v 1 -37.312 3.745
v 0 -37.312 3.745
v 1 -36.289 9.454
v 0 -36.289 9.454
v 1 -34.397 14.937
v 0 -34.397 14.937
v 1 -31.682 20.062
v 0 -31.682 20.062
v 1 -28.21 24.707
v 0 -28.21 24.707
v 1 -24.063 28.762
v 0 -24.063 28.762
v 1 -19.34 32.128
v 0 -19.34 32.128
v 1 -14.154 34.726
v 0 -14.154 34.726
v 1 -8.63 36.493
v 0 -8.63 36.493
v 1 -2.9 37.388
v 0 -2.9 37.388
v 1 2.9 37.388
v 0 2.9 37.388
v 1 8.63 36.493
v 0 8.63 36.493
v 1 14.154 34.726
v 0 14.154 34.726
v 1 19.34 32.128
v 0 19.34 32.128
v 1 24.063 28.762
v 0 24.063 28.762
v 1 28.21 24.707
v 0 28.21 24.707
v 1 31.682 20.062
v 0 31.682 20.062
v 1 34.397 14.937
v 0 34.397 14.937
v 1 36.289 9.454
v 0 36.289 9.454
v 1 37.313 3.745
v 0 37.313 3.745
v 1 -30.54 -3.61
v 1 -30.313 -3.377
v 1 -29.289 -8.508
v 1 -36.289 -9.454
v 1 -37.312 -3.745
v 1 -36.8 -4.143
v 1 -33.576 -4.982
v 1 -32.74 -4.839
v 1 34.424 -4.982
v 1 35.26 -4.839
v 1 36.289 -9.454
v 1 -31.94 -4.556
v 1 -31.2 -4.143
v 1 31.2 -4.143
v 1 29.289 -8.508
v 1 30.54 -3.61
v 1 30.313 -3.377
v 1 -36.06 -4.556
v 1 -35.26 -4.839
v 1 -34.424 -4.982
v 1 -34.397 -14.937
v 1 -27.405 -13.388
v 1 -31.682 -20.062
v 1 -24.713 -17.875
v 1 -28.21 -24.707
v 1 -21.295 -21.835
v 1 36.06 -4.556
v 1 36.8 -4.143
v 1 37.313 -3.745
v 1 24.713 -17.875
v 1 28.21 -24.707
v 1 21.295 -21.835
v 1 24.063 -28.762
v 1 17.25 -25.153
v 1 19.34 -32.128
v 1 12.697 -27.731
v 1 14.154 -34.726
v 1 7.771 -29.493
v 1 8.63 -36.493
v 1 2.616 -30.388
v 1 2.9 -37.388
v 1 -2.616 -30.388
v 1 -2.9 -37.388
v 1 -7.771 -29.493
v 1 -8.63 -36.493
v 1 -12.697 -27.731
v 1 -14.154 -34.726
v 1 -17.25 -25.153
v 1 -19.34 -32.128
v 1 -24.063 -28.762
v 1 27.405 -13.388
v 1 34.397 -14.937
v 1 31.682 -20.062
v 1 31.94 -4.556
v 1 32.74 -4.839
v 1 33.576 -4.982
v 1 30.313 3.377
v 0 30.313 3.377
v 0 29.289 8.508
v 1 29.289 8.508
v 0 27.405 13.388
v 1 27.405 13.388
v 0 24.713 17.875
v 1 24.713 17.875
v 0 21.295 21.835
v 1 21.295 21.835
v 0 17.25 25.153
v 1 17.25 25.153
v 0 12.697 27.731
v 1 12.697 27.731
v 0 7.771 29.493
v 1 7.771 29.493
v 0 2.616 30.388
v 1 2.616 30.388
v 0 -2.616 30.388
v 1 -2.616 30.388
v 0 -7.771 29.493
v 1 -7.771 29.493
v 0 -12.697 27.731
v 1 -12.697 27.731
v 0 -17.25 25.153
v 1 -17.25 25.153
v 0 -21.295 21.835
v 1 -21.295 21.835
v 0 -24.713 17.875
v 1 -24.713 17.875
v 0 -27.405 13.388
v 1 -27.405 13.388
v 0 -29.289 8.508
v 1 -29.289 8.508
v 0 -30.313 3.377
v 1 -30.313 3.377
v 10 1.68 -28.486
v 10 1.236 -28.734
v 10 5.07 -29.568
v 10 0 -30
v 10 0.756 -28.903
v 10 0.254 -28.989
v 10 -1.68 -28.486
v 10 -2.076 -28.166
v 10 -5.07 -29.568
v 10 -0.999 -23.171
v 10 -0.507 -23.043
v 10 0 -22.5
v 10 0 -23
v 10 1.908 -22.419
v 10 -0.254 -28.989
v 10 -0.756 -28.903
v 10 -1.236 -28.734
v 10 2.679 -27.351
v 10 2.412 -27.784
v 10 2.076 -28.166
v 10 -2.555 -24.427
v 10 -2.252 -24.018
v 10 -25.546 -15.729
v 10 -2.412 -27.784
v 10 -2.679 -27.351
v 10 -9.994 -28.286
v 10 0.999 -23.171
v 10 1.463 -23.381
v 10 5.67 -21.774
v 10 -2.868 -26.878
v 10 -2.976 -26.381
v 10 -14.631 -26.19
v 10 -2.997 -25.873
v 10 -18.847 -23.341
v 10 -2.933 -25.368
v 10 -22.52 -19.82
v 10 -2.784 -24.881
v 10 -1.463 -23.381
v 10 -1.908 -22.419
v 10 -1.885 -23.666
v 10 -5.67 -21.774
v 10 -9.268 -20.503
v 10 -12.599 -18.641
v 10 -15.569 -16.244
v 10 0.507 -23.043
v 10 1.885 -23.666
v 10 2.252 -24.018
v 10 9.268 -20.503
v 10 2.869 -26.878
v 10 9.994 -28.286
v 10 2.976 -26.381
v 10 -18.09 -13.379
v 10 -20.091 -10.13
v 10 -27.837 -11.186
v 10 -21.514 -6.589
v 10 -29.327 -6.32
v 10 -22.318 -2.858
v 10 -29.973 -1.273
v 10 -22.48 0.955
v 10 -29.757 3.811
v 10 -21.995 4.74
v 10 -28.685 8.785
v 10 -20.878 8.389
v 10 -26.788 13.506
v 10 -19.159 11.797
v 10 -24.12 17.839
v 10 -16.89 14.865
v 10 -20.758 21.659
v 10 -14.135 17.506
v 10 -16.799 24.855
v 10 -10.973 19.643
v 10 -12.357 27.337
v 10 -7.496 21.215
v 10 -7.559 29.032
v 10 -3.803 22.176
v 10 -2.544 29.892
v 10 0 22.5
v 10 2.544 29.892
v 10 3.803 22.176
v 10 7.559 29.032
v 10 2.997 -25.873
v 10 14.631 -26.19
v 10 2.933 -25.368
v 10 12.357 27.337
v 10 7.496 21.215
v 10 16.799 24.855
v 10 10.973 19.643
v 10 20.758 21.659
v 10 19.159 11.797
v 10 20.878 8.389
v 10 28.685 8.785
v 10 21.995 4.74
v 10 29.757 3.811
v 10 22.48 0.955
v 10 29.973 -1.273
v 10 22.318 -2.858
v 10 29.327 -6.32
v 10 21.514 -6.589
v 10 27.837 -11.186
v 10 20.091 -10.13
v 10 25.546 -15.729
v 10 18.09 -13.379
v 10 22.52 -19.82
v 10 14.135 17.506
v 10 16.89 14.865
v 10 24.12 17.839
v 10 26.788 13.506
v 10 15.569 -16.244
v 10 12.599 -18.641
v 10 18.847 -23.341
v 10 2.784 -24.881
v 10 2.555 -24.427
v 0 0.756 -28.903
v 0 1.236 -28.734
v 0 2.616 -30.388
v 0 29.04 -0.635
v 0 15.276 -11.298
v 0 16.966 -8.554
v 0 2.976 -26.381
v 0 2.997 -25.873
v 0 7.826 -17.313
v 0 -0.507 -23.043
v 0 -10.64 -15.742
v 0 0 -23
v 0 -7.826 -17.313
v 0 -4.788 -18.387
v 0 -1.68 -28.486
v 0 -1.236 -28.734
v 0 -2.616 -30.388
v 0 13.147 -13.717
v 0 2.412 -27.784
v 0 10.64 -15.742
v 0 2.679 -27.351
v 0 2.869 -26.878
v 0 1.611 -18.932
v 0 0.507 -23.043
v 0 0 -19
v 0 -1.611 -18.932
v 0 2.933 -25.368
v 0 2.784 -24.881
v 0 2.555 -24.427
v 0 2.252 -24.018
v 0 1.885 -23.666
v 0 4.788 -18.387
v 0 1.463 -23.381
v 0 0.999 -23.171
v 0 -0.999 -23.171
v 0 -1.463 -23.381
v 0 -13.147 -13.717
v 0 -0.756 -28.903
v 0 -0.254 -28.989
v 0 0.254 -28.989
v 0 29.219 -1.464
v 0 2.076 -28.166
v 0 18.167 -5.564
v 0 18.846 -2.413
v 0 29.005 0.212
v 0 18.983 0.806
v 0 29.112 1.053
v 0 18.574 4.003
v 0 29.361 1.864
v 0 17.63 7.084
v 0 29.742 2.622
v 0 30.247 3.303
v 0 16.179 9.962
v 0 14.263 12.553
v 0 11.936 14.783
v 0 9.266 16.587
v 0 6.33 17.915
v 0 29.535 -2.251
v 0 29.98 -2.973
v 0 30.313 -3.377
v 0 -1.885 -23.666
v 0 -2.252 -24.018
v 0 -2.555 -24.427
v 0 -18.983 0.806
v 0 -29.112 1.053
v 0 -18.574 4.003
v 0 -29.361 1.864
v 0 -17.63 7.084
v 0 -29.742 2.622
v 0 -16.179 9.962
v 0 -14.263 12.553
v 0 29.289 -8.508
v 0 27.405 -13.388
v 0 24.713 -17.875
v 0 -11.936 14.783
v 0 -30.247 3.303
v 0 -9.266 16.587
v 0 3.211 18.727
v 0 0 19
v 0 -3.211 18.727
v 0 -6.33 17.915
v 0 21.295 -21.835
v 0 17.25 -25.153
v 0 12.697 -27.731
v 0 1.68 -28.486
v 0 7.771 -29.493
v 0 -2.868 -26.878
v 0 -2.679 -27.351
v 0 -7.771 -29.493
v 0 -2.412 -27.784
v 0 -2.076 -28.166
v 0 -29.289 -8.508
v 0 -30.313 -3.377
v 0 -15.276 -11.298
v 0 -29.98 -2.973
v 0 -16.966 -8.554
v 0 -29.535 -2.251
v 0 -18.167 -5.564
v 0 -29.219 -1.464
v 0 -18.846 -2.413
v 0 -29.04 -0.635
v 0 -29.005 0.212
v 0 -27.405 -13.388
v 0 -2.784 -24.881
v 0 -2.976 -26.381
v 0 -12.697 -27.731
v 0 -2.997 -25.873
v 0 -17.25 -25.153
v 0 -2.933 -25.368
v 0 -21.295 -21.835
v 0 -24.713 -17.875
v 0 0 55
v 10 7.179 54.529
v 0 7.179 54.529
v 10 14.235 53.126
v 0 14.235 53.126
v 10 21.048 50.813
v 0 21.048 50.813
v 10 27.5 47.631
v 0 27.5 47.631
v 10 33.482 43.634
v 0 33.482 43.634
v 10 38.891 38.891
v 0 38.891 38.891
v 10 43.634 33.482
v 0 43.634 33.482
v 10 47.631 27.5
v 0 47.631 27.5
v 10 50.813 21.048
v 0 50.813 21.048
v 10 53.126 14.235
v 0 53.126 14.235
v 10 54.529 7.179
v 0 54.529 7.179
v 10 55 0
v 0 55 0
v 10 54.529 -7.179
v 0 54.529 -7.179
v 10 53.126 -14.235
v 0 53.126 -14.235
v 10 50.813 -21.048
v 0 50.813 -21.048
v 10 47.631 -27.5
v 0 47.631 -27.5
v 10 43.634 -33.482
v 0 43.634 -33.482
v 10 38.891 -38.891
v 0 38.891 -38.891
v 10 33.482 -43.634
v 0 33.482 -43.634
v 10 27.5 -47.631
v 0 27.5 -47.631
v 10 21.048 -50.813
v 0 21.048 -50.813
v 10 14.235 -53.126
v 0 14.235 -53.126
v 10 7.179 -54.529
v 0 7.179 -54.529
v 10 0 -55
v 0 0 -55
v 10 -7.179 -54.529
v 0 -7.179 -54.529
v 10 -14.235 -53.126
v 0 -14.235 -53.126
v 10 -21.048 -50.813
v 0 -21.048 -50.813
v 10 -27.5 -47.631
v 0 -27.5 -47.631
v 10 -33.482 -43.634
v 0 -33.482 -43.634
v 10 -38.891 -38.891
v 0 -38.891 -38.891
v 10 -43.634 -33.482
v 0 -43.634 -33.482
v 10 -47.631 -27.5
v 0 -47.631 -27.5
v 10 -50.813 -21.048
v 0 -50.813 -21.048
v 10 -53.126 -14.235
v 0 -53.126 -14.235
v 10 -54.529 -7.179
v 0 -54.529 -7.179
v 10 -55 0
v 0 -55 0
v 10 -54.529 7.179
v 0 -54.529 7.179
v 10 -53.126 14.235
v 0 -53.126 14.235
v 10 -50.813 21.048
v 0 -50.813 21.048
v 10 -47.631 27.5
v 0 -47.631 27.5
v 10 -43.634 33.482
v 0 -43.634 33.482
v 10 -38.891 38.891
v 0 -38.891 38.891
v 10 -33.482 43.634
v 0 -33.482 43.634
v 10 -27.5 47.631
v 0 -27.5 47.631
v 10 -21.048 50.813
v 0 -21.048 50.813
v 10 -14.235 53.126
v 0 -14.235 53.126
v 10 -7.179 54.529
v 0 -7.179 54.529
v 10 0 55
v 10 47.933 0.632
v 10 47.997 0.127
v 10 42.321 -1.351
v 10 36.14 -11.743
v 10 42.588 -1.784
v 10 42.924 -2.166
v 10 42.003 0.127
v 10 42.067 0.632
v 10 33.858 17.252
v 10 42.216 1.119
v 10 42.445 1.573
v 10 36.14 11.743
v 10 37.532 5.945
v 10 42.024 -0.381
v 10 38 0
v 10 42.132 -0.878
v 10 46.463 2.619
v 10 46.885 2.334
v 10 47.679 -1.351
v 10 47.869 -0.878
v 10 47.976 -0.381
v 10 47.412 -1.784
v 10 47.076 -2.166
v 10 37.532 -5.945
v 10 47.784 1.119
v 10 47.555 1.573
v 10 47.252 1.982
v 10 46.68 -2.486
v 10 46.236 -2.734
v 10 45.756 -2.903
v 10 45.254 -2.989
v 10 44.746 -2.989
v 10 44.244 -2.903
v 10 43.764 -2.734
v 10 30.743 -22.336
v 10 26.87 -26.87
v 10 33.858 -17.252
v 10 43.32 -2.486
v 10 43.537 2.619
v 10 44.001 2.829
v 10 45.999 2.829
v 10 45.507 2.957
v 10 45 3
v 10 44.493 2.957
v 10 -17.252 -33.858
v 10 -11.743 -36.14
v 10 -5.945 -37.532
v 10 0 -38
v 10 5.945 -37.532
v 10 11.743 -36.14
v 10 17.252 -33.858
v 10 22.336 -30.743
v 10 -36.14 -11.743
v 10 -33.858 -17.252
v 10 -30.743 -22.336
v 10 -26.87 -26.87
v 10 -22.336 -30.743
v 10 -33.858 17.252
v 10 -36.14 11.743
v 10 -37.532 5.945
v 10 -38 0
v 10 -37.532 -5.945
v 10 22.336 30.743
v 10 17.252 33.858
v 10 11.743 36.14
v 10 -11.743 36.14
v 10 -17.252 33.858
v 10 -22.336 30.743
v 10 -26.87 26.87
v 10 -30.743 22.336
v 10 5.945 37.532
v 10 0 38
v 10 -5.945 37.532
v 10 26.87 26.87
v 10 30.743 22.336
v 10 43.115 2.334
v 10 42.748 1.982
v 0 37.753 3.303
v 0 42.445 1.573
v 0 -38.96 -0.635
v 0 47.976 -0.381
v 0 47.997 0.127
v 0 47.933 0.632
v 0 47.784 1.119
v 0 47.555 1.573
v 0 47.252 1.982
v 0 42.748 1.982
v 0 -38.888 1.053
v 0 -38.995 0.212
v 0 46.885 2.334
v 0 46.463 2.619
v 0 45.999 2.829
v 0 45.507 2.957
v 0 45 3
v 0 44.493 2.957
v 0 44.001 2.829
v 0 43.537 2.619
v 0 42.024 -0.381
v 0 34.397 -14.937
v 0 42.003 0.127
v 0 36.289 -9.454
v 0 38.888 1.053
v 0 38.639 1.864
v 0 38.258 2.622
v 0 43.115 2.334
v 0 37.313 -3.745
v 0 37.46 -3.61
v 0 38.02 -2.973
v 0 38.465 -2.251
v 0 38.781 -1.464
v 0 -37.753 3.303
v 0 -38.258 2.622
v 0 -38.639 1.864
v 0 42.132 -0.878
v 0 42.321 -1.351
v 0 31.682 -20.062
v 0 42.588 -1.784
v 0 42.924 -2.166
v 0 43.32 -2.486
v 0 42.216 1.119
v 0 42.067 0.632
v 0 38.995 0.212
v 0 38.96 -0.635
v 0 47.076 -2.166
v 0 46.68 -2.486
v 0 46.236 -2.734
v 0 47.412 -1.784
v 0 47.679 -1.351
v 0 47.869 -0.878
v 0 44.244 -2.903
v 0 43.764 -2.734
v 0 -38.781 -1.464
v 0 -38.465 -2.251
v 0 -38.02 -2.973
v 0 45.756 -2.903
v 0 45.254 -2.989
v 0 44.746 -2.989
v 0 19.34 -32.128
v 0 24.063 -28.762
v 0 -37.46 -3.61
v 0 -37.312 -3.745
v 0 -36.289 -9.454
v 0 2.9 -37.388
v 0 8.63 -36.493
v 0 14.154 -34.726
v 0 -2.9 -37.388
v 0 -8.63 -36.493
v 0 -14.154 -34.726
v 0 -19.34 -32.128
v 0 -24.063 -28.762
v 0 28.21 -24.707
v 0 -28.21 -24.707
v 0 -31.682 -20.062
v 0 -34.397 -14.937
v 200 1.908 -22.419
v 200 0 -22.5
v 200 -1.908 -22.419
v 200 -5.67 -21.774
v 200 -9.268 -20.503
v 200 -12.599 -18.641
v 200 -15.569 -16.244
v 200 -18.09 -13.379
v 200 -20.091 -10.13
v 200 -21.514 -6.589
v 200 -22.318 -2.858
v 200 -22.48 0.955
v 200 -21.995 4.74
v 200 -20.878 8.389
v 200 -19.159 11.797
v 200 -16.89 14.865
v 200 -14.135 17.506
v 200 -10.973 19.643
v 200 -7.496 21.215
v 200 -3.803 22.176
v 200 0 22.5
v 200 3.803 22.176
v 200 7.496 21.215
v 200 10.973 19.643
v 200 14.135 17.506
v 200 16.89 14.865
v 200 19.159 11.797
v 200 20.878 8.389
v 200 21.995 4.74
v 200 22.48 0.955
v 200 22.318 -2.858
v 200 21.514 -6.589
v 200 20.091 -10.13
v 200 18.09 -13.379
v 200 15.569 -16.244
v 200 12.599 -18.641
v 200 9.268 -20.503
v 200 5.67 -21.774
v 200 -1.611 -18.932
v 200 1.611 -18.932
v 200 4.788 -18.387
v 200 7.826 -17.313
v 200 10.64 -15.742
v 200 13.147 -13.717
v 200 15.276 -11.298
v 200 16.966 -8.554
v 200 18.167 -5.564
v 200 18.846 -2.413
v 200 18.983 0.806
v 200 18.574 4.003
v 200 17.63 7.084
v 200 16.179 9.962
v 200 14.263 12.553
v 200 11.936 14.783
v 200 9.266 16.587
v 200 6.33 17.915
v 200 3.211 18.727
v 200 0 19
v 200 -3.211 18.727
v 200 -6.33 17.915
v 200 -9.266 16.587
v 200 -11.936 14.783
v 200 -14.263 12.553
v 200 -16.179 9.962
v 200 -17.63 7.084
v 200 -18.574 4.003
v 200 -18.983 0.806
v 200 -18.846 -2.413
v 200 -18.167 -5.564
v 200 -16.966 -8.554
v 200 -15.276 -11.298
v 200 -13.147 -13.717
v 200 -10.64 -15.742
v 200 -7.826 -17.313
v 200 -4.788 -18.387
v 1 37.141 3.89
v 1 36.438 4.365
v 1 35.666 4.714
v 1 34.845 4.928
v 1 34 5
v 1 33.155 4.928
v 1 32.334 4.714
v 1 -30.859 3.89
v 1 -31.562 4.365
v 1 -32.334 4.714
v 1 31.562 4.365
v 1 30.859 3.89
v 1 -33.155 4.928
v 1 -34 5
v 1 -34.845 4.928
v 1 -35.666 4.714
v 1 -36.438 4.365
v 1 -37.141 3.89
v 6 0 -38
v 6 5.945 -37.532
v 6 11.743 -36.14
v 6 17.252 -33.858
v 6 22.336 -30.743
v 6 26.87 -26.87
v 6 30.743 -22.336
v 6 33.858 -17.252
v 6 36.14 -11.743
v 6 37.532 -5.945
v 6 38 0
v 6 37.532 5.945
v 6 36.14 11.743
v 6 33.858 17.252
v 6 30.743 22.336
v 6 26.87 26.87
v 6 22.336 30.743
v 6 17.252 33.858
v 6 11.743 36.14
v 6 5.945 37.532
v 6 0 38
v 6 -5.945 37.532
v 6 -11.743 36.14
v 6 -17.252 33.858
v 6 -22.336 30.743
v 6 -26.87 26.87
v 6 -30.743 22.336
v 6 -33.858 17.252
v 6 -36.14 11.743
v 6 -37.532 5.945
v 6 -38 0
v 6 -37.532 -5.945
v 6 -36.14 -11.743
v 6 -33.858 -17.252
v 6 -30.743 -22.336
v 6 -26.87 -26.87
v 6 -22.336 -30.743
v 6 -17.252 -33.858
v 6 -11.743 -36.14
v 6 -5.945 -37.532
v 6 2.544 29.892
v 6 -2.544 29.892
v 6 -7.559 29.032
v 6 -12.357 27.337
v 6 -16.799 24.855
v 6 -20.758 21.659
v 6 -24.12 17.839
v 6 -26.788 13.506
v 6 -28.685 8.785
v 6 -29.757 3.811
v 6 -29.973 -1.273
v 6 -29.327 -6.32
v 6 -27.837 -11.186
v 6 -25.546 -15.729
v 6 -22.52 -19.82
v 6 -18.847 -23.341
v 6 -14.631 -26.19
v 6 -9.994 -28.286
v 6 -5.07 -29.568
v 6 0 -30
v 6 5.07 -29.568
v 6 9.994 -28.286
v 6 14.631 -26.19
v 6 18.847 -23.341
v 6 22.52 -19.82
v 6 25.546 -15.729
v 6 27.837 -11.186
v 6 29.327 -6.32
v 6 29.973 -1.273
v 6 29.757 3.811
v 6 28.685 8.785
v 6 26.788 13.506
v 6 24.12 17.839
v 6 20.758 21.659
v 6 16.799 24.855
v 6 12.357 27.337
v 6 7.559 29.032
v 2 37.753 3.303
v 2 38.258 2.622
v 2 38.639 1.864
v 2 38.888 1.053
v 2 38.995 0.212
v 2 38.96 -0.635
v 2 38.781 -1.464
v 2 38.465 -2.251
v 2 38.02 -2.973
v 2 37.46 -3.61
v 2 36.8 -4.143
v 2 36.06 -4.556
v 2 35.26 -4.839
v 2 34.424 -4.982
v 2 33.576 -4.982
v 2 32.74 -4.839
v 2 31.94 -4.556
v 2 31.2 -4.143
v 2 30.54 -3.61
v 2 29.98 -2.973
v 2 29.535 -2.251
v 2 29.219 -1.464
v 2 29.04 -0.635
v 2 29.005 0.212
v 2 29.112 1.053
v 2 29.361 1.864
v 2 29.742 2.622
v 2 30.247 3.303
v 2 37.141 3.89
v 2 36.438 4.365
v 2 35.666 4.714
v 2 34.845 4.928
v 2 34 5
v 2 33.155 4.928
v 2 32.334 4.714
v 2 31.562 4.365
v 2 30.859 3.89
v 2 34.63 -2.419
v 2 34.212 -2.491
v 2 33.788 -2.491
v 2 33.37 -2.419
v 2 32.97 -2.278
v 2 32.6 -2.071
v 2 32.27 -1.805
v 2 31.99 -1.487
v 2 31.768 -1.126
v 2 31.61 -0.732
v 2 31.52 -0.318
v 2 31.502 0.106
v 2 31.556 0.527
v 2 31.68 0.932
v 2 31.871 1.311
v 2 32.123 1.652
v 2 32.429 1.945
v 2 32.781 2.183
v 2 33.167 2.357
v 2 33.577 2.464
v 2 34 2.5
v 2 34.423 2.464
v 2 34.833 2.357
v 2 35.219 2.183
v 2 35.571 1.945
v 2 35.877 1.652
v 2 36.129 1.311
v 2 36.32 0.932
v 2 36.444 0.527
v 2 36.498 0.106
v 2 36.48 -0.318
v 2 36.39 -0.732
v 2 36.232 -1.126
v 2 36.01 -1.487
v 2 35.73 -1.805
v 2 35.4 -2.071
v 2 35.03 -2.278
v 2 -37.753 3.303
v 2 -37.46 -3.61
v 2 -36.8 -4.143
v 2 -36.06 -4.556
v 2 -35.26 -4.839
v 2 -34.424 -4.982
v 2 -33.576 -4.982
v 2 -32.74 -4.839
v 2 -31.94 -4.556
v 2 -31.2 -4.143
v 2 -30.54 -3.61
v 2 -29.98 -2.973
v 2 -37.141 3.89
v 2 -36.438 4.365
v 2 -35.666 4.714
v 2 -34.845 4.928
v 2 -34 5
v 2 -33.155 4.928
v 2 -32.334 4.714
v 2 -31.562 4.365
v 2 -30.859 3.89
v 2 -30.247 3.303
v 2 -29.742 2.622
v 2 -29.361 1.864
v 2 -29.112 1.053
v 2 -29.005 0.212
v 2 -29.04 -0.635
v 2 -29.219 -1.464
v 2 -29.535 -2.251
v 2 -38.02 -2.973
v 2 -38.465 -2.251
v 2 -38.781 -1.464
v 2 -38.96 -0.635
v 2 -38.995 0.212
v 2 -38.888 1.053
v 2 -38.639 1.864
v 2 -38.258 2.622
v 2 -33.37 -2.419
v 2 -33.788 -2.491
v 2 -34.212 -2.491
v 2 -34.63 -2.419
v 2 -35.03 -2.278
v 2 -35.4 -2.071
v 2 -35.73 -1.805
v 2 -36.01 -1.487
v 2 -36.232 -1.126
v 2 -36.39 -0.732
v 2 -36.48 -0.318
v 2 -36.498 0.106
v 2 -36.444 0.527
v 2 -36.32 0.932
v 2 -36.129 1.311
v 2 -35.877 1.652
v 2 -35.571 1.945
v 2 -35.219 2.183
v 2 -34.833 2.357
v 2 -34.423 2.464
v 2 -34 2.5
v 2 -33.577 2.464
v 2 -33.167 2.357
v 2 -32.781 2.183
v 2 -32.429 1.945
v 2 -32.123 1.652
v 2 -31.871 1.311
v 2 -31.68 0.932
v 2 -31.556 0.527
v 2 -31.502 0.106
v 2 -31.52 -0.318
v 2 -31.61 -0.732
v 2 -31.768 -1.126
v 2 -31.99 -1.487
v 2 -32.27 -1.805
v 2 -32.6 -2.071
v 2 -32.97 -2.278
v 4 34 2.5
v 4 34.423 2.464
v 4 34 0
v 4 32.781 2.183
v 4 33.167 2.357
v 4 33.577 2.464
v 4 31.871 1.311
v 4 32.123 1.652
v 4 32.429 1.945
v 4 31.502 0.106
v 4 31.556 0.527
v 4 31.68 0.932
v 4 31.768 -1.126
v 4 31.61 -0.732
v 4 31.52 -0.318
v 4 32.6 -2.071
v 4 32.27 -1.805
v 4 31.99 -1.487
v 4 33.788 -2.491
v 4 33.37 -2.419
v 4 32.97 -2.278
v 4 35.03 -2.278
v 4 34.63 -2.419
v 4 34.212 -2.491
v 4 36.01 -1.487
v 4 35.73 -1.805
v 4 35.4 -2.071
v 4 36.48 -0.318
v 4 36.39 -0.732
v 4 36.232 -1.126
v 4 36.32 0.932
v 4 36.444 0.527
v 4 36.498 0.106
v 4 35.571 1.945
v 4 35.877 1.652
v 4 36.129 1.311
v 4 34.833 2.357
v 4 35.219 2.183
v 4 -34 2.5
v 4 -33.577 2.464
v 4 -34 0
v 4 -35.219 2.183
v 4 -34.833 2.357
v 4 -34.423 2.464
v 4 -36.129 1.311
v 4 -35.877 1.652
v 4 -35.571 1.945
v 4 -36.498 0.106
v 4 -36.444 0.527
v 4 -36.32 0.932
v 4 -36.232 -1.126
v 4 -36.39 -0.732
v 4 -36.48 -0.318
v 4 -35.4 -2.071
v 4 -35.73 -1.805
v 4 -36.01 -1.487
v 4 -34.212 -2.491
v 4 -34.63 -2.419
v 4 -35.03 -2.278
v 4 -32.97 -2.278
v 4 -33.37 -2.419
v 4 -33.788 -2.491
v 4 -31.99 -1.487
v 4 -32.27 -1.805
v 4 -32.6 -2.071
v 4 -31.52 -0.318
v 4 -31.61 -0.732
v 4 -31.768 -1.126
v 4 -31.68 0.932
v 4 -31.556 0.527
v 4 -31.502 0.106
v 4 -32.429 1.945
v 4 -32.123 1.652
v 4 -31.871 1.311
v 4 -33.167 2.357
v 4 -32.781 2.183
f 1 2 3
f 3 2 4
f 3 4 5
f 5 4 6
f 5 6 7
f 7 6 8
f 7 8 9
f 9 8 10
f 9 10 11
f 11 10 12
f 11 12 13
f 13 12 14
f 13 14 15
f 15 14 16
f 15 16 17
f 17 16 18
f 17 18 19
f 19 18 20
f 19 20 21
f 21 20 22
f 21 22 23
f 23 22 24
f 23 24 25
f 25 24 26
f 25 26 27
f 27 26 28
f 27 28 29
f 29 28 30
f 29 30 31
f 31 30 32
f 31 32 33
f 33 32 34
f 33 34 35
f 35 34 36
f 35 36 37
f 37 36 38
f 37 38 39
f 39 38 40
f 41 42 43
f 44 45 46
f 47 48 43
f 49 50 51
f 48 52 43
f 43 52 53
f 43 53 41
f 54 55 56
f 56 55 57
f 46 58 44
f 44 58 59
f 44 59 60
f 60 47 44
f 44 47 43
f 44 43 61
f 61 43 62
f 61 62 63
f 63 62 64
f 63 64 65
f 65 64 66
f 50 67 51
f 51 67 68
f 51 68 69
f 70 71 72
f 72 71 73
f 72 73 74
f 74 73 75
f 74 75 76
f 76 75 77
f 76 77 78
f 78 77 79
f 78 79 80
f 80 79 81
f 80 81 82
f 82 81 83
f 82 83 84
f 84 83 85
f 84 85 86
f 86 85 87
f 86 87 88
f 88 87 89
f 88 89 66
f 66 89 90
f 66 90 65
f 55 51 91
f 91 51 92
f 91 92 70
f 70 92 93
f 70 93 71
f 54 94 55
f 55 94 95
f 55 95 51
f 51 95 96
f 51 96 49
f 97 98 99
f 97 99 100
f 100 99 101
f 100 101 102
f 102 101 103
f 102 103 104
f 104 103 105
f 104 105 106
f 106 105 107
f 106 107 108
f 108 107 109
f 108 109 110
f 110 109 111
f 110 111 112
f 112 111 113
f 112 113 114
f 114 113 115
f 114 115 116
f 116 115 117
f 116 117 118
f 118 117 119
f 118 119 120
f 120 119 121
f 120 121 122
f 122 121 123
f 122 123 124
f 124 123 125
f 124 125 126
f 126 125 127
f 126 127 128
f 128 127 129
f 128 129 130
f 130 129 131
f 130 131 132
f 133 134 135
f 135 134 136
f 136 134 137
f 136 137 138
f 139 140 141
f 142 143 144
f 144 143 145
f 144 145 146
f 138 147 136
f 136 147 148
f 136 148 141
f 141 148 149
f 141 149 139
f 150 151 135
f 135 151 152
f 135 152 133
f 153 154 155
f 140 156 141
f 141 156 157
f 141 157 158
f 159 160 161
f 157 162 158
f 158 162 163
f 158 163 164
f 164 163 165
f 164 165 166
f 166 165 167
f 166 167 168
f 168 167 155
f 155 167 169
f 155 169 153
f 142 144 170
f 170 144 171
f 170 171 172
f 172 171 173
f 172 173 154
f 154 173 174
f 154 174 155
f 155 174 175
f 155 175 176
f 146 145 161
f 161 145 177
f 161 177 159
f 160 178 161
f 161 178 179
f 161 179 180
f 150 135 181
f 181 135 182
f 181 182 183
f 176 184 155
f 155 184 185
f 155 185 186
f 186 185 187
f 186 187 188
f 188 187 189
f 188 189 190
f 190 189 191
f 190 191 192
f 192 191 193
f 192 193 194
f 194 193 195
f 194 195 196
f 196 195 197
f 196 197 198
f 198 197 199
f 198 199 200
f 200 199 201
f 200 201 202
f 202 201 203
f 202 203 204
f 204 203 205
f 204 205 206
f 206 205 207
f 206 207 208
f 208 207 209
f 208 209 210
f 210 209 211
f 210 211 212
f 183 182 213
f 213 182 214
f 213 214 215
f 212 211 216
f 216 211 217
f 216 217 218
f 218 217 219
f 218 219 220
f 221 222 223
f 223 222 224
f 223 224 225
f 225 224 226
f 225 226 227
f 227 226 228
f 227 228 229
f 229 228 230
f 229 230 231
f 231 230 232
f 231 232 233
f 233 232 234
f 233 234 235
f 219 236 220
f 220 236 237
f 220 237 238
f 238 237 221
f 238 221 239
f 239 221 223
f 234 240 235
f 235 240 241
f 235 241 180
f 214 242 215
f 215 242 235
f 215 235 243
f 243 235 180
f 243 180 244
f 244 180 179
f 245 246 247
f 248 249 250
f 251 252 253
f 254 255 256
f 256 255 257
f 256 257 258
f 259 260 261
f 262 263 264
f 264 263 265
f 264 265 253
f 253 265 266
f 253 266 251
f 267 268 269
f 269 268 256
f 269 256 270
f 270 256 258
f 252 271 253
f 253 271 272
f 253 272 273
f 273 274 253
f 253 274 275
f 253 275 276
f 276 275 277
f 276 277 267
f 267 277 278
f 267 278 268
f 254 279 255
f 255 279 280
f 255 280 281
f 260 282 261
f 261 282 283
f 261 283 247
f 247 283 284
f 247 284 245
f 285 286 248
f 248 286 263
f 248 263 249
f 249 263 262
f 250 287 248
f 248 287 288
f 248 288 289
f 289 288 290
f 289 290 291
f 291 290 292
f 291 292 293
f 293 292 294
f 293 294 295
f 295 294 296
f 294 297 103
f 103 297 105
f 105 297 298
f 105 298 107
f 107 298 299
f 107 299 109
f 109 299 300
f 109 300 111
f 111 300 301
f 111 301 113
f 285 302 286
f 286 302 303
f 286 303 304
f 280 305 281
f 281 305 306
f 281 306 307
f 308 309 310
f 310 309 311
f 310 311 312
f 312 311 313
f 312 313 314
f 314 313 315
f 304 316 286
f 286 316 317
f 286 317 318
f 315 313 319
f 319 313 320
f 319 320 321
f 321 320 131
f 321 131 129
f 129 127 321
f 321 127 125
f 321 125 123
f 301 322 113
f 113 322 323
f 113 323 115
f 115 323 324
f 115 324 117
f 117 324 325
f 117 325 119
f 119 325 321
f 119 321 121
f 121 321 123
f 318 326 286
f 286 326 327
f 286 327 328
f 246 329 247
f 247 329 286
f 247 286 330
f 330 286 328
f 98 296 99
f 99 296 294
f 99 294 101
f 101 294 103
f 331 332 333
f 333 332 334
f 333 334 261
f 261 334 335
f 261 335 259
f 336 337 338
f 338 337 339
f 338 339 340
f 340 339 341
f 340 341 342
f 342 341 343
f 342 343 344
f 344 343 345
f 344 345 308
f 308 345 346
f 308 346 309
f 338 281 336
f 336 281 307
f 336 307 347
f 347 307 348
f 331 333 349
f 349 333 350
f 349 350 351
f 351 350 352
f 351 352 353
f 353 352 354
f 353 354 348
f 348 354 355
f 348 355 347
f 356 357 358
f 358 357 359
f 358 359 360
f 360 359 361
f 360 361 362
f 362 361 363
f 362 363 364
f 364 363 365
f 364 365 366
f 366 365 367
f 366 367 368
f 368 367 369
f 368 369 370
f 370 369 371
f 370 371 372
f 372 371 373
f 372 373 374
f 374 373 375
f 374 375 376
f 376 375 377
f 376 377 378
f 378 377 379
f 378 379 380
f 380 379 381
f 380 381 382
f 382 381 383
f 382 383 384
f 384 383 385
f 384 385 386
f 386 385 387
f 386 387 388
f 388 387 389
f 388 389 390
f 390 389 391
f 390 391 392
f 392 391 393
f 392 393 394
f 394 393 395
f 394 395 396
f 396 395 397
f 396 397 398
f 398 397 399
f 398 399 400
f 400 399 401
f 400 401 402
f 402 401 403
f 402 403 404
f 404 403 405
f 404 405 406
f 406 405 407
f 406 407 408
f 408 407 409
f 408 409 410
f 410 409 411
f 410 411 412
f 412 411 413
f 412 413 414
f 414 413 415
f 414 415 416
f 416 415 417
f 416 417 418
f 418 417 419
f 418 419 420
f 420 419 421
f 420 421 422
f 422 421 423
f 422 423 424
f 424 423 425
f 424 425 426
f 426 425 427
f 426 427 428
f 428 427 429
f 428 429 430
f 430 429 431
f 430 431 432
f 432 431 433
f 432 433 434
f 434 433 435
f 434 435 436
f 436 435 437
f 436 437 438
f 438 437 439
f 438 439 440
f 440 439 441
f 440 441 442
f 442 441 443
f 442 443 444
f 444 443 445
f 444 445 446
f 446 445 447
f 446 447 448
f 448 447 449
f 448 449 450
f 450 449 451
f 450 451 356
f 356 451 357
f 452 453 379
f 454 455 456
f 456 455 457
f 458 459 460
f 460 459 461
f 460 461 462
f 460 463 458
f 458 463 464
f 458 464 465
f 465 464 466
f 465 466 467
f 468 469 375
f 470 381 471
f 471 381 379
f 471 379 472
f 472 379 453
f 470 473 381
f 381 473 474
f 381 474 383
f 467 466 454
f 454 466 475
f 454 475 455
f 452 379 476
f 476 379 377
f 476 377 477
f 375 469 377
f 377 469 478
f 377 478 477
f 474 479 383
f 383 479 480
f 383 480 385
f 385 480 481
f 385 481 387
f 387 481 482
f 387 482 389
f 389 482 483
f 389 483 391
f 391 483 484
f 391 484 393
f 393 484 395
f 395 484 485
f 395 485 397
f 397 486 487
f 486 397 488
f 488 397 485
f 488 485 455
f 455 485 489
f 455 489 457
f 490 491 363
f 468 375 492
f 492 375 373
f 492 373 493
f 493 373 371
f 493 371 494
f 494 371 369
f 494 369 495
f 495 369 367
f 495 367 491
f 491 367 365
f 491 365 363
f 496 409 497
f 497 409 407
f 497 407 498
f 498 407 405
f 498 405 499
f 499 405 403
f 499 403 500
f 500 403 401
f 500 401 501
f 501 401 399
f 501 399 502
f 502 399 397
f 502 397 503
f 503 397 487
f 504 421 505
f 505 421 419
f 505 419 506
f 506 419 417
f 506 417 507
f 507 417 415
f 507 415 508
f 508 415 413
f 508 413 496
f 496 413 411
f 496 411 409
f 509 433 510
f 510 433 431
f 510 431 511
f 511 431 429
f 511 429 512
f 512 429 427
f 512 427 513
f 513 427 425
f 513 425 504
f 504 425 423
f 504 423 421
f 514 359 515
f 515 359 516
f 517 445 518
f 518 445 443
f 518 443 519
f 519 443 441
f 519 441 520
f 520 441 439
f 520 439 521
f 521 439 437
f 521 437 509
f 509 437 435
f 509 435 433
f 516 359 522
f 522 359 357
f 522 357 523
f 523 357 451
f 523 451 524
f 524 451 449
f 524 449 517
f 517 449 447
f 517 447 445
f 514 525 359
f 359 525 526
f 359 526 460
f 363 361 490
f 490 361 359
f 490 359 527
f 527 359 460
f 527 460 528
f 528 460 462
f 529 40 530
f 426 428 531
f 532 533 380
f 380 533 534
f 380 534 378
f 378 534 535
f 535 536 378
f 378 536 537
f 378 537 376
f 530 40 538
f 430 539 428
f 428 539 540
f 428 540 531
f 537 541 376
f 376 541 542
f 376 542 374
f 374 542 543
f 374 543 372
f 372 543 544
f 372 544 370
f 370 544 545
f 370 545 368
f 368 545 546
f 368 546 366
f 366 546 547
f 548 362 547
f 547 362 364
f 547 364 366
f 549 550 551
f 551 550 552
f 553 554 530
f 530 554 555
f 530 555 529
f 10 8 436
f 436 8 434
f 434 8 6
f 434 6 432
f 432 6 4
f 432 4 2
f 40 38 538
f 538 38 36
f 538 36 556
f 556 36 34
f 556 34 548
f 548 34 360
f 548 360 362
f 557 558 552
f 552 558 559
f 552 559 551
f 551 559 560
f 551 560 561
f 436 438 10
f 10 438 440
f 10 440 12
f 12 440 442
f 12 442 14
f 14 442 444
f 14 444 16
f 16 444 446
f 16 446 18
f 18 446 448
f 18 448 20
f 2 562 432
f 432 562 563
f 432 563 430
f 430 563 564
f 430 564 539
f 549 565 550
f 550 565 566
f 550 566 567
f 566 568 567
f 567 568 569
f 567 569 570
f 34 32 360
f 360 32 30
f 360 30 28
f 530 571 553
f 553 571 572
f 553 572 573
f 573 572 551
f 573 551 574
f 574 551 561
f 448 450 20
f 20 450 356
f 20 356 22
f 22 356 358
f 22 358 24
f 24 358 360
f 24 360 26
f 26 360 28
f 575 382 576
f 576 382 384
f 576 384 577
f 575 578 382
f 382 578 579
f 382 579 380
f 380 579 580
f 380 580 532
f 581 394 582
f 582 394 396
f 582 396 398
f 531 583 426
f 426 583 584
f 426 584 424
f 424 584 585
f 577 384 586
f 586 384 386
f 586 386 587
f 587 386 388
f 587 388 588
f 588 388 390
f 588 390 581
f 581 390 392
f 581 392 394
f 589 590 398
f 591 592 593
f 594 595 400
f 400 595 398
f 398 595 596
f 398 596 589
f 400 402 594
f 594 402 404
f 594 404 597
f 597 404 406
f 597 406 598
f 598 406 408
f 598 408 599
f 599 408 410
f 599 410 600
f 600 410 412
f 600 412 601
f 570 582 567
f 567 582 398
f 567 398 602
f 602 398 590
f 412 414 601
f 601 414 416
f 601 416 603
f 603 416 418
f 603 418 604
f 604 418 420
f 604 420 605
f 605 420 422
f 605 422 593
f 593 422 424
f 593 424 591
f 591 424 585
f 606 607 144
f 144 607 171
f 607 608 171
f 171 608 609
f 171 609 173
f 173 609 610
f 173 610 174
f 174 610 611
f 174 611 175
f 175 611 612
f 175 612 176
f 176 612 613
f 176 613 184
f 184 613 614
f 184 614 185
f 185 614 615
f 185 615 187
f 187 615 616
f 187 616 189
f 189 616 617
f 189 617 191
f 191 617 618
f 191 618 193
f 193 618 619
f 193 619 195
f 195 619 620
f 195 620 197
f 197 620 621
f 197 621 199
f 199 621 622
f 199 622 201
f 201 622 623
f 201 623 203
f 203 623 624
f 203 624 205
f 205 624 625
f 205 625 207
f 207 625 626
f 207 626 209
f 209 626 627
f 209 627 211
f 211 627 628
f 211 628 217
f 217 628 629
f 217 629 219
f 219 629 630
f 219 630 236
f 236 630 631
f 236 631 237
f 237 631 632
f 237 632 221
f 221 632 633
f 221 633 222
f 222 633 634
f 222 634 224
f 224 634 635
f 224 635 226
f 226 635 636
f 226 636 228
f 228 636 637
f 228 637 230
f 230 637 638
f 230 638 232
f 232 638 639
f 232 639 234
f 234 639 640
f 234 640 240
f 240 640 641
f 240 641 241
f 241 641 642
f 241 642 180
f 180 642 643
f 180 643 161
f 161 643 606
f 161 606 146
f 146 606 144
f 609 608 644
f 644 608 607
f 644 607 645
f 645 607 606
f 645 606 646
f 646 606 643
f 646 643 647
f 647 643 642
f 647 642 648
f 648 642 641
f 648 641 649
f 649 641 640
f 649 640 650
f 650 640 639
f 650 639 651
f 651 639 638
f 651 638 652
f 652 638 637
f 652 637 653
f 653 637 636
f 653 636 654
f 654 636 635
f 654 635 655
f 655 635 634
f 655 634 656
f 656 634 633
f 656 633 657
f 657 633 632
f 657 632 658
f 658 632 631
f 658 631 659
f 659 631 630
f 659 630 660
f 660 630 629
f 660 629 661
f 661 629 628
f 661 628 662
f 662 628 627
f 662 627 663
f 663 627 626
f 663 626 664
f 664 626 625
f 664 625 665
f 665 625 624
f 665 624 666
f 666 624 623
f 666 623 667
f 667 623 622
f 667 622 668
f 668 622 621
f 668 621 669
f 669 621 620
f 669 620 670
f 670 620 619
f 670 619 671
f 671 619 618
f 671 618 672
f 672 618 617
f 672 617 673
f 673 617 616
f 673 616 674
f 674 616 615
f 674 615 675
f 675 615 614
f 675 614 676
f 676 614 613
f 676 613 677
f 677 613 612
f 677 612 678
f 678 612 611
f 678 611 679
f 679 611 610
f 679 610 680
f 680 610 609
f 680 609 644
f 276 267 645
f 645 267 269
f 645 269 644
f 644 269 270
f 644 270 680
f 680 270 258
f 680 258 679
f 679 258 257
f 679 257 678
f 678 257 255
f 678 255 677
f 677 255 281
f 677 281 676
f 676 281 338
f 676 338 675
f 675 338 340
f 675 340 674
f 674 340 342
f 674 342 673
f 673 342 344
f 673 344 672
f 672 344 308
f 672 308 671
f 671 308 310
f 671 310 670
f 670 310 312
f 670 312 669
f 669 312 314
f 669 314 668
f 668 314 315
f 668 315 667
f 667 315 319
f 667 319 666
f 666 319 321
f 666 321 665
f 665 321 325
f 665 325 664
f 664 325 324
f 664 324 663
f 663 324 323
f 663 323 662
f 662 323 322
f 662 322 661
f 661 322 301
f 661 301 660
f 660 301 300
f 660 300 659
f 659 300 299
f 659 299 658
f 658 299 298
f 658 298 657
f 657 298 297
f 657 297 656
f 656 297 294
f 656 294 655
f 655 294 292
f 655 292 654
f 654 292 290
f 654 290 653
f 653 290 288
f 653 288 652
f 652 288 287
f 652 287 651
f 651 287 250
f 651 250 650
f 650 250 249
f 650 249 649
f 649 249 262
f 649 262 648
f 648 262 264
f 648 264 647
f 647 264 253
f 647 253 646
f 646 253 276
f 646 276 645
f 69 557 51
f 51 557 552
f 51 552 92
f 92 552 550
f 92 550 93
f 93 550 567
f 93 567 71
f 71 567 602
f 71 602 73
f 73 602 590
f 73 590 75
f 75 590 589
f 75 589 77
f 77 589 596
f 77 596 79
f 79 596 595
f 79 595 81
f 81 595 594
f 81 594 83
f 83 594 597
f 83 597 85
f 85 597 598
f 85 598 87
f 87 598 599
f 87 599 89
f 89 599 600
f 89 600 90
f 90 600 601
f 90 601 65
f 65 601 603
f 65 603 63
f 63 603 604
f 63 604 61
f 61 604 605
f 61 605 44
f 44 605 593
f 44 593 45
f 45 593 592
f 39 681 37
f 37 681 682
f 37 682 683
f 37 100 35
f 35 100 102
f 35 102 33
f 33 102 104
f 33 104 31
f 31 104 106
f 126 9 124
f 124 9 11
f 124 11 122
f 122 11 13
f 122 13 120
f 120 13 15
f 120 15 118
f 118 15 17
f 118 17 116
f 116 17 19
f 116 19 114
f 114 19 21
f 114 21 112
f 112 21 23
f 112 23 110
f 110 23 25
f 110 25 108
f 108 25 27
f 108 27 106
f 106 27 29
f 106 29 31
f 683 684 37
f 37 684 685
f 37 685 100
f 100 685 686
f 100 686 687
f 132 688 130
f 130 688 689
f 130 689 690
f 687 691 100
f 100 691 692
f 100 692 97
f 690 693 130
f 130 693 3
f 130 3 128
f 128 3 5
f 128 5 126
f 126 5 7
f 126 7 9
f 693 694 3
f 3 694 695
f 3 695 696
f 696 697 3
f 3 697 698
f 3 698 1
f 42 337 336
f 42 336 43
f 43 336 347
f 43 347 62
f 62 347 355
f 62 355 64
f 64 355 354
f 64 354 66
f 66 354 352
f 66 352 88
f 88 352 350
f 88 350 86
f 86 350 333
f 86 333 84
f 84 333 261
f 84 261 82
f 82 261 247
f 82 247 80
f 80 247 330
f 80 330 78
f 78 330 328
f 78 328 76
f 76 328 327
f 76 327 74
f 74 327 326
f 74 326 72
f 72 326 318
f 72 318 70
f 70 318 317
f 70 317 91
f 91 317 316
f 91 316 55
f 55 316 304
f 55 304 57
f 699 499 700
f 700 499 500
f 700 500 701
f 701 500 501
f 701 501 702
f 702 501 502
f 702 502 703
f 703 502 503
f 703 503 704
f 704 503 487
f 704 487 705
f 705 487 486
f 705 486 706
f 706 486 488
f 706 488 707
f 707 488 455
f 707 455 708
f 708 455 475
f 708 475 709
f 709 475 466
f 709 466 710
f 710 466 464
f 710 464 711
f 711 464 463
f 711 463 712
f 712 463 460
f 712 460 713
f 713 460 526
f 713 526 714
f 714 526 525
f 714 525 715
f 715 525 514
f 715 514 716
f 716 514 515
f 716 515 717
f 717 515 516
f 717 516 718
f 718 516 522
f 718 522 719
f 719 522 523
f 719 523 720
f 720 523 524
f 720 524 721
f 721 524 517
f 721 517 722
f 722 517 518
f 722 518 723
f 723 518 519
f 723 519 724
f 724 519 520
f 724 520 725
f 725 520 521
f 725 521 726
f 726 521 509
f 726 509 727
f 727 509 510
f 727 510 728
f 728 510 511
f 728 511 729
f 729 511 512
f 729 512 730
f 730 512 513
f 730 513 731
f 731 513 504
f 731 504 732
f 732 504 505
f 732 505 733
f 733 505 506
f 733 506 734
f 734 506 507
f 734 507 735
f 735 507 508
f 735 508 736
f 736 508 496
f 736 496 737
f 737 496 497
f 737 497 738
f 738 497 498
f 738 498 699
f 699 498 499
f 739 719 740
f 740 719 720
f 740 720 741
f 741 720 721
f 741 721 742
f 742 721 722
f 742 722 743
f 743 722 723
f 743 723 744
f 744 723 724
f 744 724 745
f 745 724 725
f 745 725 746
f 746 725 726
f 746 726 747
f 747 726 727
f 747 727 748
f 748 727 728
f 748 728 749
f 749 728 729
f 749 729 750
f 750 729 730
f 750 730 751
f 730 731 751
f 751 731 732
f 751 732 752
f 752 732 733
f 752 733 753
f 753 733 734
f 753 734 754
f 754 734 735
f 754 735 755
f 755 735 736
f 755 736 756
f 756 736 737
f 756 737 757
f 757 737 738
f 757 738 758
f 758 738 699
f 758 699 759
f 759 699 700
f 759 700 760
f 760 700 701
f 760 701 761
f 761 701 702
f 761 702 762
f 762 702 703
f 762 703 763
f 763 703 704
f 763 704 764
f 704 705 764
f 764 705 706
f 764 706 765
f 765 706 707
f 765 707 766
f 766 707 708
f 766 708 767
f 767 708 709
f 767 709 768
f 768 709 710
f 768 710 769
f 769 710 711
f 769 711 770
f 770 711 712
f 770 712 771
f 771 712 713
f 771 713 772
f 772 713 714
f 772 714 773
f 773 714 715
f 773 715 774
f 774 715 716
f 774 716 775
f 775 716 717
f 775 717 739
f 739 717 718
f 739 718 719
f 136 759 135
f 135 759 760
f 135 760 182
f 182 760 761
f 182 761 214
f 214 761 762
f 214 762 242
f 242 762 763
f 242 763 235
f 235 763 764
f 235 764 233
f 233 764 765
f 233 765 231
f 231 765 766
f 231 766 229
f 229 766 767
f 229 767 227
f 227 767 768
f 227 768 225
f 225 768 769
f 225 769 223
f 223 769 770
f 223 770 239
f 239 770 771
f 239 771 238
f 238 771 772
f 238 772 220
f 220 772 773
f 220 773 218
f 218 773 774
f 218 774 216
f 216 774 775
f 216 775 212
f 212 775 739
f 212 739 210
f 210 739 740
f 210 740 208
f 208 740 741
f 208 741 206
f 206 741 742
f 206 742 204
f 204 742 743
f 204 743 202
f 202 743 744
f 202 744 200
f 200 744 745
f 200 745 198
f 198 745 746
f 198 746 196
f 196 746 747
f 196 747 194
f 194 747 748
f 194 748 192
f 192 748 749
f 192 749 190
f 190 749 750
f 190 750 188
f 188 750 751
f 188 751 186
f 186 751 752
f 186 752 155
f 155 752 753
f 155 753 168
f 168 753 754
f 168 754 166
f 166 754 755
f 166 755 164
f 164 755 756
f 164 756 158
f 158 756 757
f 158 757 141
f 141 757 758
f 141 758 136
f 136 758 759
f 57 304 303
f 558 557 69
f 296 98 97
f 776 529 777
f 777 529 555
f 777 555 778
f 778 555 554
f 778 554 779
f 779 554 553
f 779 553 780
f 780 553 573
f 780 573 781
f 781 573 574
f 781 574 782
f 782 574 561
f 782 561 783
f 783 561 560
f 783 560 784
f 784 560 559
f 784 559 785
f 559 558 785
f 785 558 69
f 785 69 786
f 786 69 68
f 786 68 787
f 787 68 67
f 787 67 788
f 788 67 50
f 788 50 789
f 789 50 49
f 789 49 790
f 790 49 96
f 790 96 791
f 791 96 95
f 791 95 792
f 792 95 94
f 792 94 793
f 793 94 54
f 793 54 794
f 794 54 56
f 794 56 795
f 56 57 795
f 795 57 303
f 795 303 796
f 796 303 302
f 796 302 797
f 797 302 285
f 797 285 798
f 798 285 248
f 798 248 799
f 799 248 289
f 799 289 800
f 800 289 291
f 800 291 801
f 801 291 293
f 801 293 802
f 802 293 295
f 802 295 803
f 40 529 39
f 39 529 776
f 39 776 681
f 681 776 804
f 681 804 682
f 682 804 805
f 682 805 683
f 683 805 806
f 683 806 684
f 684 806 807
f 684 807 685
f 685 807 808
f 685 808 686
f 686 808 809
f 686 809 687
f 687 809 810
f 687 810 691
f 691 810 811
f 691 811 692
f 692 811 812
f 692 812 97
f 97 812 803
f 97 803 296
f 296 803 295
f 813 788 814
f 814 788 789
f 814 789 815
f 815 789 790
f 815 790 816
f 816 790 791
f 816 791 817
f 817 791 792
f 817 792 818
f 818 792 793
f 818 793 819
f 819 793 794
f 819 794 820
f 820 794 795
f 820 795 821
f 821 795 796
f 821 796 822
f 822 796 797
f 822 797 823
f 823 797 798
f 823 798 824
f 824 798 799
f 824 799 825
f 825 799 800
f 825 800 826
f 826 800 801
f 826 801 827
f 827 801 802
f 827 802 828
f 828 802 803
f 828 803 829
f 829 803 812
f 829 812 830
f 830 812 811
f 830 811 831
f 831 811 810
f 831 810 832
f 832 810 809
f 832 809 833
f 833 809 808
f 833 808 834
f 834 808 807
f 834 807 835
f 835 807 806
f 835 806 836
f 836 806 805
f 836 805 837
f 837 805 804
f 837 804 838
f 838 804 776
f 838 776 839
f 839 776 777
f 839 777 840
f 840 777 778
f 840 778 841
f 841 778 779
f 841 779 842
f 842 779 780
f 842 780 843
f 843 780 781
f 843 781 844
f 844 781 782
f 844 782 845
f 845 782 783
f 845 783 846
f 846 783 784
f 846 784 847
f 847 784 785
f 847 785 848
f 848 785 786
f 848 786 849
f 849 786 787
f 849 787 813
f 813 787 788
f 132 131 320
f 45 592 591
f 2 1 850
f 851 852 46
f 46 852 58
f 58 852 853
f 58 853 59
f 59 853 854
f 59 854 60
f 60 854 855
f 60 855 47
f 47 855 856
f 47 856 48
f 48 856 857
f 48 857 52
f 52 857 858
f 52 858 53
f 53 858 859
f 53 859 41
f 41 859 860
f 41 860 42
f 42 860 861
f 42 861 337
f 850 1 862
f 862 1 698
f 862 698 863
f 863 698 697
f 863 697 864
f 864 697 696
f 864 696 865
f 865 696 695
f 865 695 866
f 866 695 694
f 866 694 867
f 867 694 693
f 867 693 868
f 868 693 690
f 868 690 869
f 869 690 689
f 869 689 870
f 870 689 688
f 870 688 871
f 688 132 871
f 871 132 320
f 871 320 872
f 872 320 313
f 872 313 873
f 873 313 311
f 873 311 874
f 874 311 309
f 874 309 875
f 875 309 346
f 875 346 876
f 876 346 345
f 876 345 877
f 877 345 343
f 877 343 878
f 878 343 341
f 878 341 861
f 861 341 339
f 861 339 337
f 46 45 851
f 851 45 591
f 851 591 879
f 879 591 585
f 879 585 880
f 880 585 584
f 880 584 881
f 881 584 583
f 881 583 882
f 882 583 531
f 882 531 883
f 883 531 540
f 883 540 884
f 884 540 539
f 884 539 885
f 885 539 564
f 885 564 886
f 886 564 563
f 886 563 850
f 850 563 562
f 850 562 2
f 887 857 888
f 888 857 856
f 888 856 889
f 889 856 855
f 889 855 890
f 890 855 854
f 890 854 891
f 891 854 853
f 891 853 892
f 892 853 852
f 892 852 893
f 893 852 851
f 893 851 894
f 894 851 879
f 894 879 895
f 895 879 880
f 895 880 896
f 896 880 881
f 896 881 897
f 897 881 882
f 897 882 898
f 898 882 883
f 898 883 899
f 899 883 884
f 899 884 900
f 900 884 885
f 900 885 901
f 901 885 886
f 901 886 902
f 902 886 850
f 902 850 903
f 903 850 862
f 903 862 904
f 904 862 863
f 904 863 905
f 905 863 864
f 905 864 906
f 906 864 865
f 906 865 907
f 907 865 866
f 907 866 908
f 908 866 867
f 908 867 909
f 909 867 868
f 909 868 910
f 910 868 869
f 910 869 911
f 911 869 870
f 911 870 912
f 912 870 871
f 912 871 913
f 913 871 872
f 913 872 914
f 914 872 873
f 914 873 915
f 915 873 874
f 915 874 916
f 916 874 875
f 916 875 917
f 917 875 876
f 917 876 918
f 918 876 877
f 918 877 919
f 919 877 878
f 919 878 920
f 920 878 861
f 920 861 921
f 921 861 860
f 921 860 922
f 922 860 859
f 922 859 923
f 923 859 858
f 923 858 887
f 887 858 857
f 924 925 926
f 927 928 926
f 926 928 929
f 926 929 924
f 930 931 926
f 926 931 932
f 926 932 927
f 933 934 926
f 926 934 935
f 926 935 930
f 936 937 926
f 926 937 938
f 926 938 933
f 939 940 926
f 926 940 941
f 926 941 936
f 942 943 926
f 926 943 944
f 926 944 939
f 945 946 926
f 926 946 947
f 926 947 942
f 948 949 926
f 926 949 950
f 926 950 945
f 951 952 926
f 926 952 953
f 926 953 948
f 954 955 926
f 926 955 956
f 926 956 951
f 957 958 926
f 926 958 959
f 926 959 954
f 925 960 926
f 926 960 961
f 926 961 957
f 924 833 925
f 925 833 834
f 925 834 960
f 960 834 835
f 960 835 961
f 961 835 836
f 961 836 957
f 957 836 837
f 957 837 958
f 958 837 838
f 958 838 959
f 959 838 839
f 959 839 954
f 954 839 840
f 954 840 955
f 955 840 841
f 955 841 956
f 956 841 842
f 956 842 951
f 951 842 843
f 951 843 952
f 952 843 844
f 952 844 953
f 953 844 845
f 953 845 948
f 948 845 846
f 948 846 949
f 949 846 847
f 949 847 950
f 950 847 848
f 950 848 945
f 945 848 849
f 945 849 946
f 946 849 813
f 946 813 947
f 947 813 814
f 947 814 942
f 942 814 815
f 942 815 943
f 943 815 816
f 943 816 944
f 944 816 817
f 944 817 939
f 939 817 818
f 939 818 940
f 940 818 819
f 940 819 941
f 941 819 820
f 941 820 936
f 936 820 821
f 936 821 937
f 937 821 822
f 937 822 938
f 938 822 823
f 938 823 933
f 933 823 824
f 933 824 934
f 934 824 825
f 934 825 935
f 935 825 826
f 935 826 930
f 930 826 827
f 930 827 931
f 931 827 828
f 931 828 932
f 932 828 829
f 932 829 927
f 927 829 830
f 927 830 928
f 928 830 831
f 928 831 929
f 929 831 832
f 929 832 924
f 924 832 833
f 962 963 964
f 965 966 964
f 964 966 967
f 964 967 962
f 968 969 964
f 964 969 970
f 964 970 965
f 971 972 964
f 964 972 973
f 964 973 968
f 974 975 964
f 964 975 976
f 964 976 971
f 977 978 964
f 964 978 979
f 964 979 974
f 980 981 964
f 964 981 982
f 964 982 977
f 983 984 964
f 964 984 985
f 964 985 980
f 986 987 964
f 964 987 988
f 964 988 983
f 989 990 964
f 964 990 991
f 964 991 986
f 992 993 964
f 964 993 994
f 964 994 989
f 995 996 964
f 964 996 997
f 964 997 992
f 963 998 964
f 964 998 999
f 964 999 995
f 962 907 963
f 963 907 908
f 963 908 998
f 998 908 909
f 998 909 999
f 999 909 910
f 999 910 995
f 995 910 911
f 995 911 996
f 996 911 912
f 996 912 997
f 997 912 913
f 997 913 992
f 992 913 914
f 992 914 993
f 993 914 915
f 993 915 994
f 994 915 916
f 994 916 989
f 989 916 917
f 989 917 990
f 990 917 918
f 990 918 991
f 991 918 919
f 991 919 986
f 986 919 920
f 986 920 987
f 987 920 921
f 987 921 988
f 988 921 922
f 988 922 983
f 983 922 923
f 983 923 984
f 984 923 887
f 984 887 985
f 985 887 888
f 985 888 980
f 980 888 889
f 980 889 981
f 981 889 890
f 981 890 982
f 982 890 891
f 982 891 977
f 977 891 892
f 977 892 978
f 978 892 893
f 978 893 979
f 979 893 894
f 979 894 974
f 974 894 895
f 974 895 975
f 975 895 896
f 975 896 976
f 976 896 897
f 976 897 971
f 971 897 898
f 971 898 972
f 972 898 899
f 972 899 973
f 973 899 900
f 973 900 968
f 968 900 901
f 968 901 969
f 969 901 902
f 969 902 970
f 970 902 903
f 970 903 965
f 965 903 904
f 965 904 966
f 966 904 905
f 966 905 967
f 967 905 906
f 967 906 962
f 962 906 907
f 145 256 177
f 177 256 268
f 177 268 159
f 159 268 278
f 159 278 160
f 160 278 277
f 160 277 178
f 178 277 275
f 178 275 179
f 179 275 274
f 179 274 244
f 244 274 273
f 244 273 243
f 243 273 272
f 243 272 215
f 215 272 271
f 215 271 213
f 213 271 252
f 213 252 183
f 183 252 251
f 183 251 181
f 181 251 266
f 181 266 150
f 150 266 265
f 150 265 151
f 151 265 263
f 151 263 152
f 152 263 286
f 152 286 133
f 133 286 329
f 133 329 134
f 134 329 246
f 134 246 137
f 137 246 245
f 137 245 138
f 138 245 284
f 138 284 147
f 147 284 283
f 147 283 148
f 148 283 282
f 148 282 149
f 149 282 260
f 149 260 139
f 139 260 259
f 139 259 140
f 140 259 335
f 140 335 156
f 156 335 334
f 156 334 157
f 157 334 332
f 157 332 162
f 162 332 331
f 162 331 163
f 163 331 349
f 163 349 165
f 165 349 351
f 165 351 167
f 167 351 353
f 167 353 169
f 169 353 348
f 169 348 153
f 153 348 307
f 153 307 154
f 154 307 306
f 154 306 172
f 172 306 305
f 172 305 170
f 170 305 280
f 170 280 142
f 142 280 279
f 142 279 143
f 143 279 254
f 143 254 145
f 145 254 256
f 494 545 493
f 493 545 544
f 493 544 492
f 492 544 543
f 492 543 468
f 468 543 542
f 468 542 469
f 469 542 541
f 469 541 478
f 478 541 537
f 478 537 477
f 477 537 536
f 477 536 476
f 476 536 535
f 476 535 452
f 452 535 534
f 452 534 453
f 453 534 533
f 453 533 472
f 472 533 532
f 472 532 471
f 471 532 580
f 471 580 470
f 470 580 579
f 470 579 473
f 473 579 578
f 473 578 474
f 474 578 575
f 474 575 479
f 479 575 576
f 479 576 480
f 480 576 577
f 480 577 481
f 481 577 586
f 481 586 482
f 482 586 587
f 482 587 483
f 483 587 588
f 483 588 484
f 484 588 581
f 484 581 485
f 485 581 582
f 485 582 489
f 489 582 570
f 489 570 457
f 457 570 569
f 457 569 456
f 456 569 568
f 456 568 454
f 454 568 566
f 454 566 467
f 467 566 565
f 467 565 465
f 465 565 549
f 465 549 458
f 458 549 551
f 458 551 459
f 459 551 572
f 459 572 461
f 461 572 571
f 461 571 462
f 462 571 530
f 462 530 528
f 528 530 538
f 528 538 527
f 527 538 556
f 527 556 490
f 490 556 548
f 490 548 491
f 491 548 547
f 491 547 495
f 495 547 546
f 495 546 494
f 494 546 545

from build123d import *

# Parameters (mm, degrees)
SKETCH2_R               = 55
BOSS_EXTRUDE1_DEPTH     = 10
SKETCH3_R               = 22.5
BOSS_EXTRUDE2_DEPTH     = 190
SKETCH4_R               = 19
CUT_EXTRUDE1_DEPTH      = 1
CUT_EXTRUDE1_DEPTH_BACK = 201
SKETCH14_R              = 37.5
SKETCH14_R_2            = 30.5
CUT_EXTRUDE5_DEPTH      = 1
SKETCH15_R              = 38
SKETCH15_R_2            = 30
CUT_EXTRUDE6_DEPTH      = 4
SKETCH16_R              = 2.5
CUT_EXTRUDE7_DEPTH      = 4
SKETCH17_R              = 5
CUT_EXTRUDE8_DEPTH      = 2
SKETCH20_R              = 3
CUT_EXTRUDE9_DEPTH      = 10
SKETCH21_R              = 3
CUT_EXTRUDE10_DEPTH     = 10


with BuildPart() as part:
    # Sketch2 → Boss-Extrude1 (new body)
    with BuildSketch(Plane(origin=(0, 0, 0), x_dir=(0, 0, -1), z_dir=(1, 0, 0))):
        Circle(SKETCH2_R)
    extrude(amount=BOSS_EXTRUDE1_DEPTH)

    # Sketch3 → Boss-Extrude2 (add)
    with BuildSketch(Plane(origin=(10, 0, 0), x_dir=(0, 0, -1), z_dir=(1, 0, 0))):
        Circle(SKETCH3_R)
    extrude(amount=BOSS_EXTRUDE2_DEPTH)

    # Sketch4 → Cut-Extrude1 (cut, two sides)
    with BuildSketch(Plane.ZY) as cut_extrude1_sk:
        Circle(SKETCH4_R)
    extrude(amount=CUT_EXTRUDE1_DEPTH, mode=Mode.SUBTRACT)
    extrude(cut_extrude1_sk.sketch, amount=-CUT_EXTRUDE1_DEPTH_BACK, mode=Mode.SUBTRACT)

    # Sketch14 → Cut-Extrude5 (cut)
    with BuildSketch(Plane.ZY):
        Circle(SKETCH14_R)
        Circle(SKETCH14_R_2, mode=Mode.SUBTRACT)
    extrude(amount=-CUT_EXTRUDE5_DEPTH, mode=Mode.SUBTRACT)

    # Sketch15 → Cut-Extrude6 (cut)
    with BuildSketch(Plane(origin=(10, 0, 0), x_dir=(0, 0, -1), z_dir=(1, 0, 0))):
        Circle(SKETCH15_R)
        Circle(SKETCH15_R_2, mode=Mode.SUBTRACT)
    extrude(amount=-CUT_EXTRUDE6_DEPTH, mode=Mode.SUBTRACT)

    # Sketch16 → Cut-Extrude7 (cut)
    with BuildSketch(Plane.ZY):
        with Locations((0, 34)):
            Circle(SKETCH16_R)
        with Locations((0, -34)):
            Circle(SKETCH16_R)
    extrude(amount=-CUT_EXTRUDE7_DEPTH, mode=Mode.SUBTRACT)

    # Sketch17 → Cut-Extrude8 (cut)
    with BuildSketch(Plane.ZY):
        with Locations((0, -34)):
            Circle(SKETCH17_R)
        with Locations((0, 34)):
            Circle(SKETCH17_R)
    extrude(amount=-CUT_EXTRUDE8_DEPTH, mode=Mode.SUBTRACT)

    # Sketch20 → Cut-Extrude9 (cut)
    with BuildSketch(Plane.ZY):
        with Locations((-26, 0)):
            Circle(SKETCH20_R)
    extrude(amount=-CUT_EXTRUDE9_DEPTH, mode=Mode.SUBTRACT)

    # Sketch21 → Cut-Extrude10 (cut)
    with BuildSketch(Plane.ZY):
        with Locations((0, 45)):
            Circle(SKETCH21_R)
    extrude(amount=-CUT_EXTRUDE10_DEPTH, mode=Mode.SUBTRACT)


solid = part.part
